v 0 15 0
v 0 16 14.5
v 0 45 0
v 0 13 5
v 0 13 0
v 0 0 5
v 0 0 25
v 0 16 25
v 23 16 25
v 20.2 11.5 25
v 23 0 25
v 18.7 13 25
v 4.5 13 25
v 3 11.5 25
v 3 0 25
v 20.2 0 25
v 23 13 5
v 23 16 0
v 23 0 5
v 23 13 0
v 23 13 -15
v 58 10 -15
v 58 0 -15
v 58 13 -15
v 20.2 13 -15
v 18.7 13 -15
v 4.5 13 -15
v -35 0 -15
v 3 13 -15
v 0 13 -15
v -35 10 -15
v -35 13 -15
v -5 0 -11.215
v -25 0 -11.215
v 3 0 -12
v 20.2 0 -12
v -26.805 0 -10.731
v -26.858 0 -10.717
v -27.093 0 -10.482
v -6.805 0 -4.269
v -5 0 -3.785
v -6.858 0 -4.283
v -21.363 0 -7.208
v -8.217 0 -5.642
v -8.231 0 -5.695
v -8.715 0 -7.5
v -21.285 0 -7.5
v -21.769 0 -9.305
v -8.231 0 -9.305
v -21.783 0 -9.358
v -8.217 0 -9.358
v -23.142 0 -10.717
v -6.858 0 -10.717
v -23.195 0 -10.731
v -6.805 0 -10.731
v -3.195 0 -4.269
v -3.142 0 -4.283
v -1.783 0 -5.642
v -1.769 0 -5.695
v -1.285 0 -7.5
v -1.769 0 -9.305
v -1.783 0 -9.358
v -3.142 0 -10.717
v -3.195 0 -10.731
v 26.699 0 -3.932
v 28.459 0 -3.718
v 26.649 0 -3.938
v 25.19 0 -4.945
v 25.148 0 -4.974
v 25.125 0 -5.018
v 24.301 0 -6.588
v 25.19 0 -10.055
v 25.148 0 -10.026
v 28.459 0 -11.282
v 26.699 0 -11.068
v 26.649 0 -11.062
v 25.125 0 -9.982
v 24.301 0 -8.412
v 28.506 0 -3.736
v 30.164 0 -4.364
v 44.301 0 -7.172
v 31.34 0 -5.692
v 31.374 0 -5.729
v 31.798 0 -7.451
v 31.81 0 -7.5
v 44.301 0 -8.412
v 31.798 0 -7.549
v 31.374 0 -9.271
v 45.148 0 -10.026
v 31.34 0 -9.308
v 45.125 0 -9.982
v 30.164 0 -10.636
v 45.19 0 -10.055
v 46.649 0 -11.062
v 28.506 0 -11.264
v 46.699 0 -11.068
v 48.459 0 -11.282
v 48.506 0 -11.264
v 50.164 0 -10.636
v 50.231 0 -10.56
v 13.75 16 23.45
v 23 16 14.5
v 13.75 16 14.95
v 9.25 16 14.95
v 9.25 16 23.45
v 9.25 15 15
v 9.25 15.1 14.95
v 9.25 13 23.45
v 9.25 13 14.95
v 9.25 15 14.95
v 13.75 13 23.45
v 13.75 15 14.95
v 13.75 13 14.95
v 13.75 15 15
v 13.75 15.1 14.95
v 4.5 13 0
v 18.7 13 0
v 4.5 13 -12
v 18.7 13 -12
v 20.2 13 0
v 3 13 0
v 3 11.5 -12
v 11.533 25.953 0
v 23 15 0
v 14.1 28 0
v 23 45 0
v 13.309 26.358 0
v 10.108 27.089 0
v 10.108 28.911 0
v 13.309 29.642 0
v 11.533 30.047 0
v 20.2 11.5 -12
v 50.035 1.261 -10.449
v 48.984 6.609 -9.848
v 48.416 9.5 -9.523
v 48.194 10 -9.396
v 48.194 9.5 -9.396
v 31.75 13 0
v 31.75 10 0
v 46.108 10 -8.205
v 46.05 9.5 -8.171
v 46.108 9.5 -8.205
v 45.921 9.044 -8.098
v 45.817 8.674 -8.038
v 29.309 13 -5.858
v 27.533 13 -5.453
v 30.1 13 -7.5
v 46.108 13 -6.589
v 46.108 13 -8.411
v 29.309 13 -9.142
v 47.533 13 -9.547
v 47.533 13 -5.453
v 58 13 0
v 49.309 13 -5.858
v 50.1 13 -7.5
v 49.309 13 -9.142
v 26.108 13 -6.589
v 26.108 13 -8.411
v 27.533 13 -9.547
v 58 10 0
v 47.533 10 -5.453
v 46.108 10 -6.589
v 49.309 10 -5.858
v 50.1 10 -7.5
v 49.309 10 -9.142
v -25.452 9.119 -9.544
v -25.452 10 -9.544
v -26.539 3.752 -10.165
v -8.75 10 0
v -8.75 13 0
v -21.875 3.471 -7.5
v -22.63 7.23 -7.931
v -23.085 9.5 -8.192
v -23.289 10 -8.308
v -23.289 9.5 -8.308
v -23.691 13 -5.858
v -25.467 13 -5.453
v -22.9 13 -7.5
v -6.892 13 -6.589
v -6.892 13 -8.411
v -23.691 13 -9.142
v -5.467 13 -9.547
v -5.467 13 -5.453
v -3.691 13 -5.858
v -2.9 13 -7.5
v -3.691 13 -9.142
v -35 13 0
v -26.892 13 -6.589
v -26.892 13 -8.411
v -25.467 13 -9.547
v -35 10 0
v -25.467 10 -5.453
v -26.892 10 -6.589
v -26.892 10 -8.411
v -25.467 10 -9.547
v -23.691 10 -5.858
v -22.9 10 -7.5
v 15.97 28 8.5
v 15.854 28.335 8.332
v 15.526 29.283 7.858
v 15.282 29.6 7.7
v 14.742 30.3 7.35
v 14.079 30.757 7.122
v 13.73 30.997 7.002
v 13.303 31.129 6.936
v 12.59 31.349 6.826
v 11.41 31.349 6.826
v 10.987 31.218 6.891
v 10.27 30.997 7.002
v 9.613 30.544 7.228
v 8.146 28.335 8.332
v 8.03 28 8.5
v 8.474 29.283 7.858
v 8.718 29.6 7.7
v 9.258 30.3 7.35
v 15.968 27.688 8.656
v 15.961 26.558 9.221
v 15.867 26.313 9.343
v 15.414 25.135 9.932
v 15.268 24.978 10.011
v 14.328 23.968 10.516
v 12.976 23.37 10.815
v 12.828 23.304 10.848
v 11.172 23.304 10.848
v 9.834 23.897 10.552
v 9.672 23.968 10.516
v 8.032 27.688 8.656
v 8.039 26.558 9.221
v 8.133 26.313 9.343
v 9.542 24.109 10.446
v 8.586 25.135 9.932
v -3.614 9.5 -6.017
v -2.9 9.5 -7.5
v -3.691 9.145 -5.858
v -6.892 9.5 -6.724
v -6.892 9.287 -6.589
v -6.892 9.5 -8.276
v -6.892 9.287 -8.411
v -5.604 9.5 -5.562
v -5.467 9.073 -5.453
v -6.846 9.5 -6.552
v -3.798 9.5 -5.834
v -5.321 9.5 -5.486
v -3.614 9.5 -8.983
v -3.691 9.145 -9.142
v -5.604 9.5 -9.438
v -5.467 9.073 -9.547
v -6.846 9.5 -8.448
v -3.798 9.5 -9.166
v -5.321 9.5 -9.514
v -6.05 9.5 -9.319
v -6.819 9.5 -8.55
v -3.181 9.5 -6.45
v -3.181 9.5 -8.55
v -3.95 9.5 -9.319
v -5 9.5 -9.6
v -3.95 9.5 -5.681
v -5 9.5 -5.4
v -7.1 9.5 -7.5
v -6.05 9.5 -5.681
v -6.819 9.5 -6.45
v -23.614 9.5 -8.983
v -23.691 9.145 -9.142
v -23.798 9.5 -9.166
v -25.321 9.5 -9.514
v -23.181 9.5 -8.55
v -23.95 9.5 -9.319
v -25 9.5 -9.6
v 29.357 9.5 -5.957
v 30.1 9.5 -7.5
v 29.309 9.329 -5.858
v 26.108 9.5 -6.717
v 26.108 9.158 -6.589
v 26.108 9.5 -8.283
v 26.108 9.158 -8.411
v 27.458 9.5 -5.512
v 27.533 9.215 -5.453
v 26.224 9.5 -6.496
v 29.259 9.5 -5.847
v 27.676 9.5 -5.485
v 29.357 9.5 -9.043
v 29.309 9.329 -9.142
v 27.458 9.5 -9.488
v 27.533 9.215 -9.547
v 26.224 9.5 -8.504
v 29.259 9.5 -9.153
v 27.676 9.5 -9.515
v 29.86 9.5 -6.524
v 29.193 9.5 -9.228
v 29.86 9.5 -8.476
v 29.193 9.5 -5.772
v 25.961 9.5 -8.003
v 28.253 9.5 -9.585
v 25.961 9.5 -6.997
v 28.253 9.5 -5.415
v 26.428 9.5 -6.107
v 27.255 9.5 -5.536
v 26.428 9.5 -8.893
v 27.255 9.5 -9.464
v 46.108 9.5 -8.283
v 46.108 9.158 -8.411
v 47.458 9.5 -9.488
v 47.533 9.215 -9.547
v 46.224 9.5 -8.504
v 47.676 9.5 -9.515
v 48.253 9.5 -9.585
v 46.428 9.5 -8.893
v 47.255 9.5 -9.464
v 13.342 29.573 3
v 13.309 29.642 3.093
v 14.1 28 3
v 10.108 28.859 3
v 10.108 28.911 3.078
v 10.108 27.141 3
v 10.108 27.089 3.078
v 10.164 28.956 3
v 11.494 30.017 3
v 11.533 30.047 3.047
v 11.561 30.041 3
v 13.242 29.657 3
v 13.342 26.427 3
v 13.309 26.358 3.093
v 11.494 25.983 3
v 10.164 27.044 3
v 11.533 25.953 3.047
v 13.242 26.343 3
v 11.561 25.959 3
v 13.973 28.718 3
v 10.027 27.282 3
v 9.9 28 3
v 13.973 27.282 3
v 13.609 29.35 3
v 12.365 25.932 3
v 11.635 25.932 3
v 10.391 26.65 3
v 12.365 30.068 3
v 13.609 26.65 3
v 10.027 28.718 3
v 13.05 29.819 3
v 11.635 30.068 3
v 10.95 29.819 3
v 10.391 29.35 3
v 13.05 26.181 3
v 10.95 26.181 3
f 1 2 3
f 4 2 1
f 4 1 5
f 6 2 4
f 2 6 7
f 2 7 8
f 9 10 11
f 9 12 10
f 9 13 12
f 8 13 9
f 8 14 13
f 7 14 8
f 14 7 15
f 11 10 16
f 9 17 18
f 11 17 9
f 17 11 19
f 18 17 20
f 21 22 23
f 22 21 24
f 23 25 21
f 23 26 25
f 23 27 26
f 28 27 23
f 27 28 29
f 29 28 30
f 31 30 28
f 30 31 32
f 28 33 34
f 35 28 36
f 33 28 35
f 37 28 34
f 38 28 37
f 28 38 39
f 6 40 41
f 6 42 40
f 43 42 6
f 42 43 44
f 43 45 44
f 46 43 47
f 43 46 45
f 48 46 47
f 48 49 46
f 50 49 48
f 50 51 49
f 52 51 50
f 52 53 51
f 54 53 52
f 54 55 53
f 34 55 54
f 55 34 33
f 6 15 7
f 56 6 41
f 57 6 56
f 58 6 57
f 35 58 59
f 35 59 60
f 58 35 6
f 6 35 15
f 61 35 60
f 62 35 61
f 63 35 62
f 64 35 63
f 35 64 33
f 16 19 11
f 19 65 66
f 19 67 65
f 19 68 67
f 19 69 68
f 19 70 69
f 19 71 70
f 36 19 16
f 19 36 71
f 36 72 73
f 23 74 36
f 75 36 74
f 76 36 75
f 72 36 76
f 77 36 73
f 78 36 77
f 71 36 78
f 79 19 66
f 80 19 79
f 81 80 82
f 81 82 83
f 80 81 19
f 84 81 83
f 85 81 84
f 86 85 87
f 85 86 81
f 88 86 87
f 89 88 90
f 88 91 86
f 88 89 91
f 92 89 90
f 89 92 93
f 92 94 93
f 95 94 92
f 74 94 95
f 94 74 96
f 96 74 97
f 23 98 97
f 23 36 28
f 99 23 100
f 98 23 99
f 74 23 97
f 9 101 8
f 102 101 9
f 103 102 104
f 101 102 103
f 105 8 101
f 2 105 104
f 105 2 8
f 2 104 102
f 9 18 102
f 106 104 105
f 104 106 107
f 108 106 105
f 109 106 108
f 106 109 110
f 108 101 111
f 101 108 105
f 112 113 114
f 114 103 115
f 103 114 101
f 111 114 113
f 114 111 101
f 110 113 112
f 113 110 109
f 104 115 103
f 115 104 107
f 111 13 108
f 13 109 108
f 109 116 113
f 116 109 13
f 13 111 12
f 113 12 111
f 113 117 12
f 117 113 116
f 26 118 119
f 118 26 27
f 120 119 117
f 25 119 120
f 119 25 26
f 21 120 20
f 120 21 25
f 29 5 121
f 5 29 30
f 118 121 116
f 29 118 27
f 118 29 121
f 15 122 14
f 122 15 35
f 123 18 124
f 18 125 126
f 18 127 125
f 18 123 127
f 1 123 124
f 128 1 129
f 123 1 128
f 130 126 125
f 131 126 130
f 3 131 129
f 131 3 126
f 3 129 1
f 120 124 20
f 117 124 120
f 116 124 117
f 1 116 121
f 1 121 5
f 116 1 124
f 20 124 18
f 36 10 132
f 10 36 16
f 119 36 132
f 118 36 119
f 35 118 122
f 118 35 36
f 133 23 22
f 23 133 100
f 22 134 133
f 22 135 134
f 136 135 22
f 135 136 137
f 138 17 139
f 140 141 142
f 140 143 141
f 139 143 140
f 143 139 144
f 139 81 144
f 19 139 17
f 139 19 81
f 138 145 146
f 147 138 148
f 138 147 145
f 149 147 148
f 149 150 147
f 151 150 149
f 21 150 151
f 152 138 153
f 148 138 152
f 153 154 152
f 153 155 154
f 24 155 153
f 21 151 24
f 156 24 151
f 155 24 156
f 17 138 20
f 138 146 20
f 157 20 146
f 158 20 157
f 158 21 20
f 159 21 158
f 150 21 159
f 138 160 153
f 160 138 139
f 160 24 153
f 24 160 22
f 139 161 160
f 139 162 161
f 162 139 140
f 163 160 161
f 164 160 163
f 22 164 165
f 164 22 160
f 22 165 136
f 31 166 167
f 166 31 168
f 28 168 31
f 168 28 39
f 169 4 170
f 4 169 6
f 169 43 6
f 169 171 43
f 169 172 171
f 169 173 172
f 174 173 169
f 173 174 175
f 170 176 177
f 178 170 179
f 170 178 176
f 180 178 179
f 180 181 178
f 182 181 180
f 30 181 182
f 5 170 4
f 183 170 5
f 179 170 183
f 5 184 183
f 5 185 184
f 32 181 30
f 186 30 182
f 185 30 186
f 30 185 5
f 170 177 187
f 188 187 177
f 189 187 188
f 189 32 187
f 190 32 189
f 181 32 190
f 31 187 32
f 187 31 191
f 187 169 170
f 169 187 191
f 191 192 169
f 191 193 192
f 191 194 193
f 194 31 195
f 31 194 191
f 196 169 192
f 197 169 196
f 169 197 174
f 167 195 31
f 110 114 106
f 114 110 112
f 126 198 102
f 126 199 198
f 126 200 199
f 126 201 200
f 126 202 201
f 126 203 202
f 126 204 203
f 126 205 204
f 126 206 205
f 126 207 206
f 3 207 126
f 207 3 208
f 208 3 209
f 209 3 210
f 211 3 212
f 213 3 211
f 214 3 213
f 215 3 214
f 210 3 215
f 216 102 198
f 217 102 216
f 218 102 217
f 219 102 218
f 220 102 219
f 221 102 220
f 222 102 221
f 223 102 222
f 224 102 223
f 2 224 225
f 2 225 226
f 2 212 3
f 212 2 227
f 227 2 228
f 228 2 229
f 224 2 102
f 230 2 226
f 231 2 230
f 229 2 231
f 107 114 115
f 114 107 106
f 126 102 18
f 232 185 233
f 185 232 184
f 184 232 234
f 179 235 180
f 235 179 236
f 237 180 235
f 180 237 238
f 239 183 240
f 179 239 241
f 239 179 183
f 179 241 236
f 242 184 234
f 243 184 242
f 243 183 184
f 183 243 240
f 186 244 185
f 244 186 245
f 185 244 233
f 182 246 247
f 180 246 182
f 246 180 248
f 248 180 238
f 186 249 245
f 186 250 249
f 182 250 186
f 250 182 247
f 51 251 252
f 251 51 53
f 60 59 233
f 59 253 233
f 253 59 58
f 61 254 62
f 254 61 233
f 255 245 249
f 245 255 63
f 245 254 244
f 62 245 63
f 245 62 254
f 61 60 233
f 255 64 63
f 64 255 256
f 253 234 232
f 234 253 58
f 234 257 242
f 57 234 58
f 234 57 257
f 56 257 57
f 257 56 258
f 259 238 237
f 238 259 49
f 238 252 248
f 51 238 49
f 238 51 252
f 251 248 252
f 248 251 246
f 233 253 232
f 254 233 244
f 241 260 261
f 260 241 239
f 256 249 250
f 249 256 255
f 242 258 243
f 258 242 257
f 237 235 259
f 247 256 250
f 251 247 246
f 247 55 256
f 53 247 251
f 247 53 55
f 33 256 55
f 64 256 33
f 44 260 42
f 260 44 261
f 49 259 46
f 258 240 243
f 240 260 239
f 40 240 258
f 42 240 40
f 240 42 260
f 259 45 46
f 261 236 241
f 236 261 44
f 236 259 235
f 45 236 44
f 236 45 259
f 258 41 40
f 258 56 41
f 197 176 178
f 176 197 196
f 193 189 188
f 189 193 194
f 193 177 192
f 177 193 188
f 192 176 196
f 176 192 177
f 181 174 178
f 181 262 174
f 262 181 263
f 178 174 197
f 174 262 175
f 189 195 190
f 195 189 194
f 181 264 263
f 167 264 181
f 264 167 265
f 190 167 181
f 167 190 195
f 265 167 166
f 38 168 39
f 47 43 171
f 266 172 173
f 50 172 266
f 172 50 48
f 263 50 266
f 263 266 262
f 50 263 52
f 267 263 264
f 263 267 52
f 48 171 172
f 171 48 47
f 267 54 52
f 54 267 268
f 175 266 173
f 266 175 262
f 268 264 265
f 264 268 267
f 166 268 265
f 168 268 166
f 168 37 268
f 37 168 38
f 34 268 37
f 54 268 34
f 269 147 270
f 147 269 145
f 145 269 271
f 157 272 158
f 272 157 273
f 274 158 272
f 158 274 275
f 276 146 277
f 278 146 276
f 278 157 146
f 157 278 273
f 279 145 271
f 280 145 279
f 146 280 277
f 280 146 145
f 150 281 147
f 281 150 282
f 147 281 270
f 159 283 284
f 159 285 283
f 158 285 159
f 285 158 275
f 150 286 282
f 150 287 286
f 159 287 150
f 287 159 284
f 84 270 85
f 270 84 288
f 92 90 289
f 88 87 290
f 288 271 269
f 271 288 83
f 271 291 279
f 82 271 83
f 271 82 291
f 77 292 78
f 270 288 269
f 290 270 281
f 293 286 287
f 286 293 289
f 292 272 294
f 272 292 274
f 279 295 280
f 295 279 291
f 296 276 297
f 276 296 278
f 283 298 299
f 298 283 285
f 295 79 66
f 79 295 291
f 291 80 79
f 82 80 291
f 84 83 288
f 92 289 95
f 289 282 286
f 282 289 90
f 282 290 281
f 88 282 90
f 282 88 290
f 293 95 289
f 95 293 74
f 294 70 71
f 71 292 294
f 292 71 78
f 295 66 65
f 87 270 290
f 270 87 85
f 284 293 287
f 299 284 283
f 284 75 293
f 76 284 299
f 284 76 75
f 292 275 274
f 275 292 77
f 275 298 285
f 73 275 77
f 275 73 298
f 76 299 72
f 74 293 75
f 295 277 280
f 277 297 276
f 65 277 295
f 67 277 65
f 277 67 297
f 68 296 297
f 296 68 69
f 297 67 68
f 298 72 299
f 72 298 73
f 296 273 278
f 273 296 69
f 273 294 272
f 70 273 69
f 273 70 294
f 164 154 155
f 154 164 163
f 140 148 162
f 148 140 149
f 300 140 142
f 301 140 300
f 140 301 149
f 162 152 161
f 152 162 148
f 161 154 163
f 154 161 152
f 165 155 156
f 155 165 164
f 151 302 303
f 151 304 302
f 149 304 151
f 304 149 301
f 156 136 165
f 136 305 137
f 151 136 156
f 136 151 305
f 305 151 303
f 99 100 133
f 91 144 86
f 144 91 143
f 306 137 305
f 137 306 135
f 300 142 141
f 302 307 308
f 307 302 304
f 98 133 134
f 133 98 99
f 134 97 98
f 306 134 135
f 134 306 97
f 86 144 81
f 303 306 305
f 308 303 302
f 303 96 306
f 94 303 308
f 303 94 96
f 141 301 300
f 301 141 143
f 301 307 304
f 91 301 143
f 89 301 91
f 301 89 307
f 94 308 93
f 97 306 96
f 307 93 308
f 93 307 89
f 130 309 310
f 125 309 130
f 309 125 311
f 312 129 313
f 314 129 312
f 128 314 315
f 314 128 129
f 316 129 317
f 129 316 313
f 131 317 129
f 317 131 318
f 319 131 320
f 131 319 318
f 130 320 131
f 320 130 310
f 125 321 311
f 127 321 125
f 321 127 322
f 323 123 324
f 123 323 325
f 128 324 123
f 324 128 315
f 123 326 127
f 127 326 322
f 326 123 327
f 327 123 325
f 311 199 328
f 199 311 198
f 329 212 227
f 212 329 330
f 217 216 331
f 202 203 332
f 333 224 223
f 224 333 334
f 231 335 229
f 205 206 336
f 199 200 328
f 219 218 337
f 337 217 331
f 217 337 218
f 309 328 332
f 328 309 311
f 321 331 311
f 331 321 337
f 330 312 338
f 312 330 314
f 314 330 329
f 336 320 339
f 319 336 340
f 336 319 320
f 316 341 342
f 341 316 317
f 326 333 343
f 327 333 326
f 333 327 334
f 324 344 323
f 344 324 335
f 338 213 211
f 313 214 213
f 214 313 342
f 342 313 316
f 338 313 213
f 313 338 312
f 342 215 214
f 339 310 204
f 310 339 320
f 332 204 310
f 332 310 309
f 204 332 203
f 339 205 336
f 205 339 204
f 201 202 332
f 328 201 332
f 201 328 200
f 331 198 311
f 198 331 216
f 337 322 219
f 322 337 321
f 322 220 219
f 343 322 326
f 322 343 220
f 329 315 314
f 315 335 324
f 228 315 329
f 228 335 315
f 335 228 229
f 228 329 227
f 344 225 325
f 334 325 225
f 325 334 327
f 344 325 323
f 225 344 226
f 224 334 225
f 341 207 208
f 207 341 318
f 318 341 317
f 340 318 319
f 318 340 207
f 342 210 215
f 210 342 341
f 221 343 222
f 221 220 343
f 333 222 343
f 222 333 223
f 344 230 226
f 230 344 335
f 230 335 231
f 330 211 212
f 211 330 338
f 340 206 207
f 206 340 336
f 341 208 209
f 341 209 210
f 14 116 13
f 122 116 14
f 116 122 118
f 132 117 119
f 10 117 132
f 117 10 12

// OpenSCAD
module prism(l, w, h){
   polyhedron(
           points=[[0,0,0], [l,0,0], [l,w,0], [0,w,0], [0,w,h], [l,w,h]],
           faces=[[0,1,2,3],[5,4,3,2],[0,4,5,1],[0,3,4],[5,2,1]]
           );
}

module support() {
    color("Red") translate([58,0,-15]) rotate([0,0,90]) prism(13, 35, 20);
    color("Blue") translate([23,10,-15]) cube([35,3,15]);

    color("Red") translate([-35,13,-15]) rotate([0,0,-90]) prism(13, 35, 20);
    color("Blue") translate([-35,10,-15]) cube([35,3,15]);

    color("Green") translate([23,45,0]) rotate([0,0,180]) prism(23, 30, 15);
}

difference() {
    translate([0,0,-15]) {
        difference() {
            cube([23,16,40]);
            color("Pink") translate([11.5,16,34.2]) cube([4.5,6,8.5], true);
            translate([3,0,3]) cube([17.2,16,12]);
            translate([0,13,0]) cube([23,3,15]);
        }
    }
    translate([3,0,0]) cube([17.2,13,25]);

}

difference() {
    support();


        rotate([90,0,0]) translate([-5,-7.5,-14]) {
            cylinder(15, 2.1, 2.1);
            translate([0,0,4.5]) color("Grey") cylinder(10, 2.1, 3.8);
        }
        rotate([90,0,0]) translate([-25,-7.5,-14]) {
           cylinder(15, 2.1, 2.1);
           translate([0,0,4.5]) color("Grey") cylinder(10, 2.1, 3.8);
        }



        rotate([90,0,0]) translate([28,-7.5,-14]) {
            cylinder(15, 2.1, 2.1);
            translate([0,0,4.5]) color("Grey") cylinder(10, 2.1, 3.9);
        }
        rotate([90,0,0]) translate([48,-7.5,-14]) {
            cylinder(15, 2.1, 2.1);
            translate([0,0,4.5]) color("Grey") cylinder(10, 2.1, 3.9);
        }
 
    rotate([0,0,0]) translate([12,28,0]) {
        cylinder(13, 2.1, 2.1);
        translate([0,0,3]) color("Grey") cylinder(10, 2.1, 5.5);
    }   
}

translate([3,11.5,25]) rotate([0,90,0]) color("Navy") prism(40,1.5,1.5);
translate([18.7,13,25]) rotate([90,90,0]) color("Navy") prism(40,1.5,1.5);
